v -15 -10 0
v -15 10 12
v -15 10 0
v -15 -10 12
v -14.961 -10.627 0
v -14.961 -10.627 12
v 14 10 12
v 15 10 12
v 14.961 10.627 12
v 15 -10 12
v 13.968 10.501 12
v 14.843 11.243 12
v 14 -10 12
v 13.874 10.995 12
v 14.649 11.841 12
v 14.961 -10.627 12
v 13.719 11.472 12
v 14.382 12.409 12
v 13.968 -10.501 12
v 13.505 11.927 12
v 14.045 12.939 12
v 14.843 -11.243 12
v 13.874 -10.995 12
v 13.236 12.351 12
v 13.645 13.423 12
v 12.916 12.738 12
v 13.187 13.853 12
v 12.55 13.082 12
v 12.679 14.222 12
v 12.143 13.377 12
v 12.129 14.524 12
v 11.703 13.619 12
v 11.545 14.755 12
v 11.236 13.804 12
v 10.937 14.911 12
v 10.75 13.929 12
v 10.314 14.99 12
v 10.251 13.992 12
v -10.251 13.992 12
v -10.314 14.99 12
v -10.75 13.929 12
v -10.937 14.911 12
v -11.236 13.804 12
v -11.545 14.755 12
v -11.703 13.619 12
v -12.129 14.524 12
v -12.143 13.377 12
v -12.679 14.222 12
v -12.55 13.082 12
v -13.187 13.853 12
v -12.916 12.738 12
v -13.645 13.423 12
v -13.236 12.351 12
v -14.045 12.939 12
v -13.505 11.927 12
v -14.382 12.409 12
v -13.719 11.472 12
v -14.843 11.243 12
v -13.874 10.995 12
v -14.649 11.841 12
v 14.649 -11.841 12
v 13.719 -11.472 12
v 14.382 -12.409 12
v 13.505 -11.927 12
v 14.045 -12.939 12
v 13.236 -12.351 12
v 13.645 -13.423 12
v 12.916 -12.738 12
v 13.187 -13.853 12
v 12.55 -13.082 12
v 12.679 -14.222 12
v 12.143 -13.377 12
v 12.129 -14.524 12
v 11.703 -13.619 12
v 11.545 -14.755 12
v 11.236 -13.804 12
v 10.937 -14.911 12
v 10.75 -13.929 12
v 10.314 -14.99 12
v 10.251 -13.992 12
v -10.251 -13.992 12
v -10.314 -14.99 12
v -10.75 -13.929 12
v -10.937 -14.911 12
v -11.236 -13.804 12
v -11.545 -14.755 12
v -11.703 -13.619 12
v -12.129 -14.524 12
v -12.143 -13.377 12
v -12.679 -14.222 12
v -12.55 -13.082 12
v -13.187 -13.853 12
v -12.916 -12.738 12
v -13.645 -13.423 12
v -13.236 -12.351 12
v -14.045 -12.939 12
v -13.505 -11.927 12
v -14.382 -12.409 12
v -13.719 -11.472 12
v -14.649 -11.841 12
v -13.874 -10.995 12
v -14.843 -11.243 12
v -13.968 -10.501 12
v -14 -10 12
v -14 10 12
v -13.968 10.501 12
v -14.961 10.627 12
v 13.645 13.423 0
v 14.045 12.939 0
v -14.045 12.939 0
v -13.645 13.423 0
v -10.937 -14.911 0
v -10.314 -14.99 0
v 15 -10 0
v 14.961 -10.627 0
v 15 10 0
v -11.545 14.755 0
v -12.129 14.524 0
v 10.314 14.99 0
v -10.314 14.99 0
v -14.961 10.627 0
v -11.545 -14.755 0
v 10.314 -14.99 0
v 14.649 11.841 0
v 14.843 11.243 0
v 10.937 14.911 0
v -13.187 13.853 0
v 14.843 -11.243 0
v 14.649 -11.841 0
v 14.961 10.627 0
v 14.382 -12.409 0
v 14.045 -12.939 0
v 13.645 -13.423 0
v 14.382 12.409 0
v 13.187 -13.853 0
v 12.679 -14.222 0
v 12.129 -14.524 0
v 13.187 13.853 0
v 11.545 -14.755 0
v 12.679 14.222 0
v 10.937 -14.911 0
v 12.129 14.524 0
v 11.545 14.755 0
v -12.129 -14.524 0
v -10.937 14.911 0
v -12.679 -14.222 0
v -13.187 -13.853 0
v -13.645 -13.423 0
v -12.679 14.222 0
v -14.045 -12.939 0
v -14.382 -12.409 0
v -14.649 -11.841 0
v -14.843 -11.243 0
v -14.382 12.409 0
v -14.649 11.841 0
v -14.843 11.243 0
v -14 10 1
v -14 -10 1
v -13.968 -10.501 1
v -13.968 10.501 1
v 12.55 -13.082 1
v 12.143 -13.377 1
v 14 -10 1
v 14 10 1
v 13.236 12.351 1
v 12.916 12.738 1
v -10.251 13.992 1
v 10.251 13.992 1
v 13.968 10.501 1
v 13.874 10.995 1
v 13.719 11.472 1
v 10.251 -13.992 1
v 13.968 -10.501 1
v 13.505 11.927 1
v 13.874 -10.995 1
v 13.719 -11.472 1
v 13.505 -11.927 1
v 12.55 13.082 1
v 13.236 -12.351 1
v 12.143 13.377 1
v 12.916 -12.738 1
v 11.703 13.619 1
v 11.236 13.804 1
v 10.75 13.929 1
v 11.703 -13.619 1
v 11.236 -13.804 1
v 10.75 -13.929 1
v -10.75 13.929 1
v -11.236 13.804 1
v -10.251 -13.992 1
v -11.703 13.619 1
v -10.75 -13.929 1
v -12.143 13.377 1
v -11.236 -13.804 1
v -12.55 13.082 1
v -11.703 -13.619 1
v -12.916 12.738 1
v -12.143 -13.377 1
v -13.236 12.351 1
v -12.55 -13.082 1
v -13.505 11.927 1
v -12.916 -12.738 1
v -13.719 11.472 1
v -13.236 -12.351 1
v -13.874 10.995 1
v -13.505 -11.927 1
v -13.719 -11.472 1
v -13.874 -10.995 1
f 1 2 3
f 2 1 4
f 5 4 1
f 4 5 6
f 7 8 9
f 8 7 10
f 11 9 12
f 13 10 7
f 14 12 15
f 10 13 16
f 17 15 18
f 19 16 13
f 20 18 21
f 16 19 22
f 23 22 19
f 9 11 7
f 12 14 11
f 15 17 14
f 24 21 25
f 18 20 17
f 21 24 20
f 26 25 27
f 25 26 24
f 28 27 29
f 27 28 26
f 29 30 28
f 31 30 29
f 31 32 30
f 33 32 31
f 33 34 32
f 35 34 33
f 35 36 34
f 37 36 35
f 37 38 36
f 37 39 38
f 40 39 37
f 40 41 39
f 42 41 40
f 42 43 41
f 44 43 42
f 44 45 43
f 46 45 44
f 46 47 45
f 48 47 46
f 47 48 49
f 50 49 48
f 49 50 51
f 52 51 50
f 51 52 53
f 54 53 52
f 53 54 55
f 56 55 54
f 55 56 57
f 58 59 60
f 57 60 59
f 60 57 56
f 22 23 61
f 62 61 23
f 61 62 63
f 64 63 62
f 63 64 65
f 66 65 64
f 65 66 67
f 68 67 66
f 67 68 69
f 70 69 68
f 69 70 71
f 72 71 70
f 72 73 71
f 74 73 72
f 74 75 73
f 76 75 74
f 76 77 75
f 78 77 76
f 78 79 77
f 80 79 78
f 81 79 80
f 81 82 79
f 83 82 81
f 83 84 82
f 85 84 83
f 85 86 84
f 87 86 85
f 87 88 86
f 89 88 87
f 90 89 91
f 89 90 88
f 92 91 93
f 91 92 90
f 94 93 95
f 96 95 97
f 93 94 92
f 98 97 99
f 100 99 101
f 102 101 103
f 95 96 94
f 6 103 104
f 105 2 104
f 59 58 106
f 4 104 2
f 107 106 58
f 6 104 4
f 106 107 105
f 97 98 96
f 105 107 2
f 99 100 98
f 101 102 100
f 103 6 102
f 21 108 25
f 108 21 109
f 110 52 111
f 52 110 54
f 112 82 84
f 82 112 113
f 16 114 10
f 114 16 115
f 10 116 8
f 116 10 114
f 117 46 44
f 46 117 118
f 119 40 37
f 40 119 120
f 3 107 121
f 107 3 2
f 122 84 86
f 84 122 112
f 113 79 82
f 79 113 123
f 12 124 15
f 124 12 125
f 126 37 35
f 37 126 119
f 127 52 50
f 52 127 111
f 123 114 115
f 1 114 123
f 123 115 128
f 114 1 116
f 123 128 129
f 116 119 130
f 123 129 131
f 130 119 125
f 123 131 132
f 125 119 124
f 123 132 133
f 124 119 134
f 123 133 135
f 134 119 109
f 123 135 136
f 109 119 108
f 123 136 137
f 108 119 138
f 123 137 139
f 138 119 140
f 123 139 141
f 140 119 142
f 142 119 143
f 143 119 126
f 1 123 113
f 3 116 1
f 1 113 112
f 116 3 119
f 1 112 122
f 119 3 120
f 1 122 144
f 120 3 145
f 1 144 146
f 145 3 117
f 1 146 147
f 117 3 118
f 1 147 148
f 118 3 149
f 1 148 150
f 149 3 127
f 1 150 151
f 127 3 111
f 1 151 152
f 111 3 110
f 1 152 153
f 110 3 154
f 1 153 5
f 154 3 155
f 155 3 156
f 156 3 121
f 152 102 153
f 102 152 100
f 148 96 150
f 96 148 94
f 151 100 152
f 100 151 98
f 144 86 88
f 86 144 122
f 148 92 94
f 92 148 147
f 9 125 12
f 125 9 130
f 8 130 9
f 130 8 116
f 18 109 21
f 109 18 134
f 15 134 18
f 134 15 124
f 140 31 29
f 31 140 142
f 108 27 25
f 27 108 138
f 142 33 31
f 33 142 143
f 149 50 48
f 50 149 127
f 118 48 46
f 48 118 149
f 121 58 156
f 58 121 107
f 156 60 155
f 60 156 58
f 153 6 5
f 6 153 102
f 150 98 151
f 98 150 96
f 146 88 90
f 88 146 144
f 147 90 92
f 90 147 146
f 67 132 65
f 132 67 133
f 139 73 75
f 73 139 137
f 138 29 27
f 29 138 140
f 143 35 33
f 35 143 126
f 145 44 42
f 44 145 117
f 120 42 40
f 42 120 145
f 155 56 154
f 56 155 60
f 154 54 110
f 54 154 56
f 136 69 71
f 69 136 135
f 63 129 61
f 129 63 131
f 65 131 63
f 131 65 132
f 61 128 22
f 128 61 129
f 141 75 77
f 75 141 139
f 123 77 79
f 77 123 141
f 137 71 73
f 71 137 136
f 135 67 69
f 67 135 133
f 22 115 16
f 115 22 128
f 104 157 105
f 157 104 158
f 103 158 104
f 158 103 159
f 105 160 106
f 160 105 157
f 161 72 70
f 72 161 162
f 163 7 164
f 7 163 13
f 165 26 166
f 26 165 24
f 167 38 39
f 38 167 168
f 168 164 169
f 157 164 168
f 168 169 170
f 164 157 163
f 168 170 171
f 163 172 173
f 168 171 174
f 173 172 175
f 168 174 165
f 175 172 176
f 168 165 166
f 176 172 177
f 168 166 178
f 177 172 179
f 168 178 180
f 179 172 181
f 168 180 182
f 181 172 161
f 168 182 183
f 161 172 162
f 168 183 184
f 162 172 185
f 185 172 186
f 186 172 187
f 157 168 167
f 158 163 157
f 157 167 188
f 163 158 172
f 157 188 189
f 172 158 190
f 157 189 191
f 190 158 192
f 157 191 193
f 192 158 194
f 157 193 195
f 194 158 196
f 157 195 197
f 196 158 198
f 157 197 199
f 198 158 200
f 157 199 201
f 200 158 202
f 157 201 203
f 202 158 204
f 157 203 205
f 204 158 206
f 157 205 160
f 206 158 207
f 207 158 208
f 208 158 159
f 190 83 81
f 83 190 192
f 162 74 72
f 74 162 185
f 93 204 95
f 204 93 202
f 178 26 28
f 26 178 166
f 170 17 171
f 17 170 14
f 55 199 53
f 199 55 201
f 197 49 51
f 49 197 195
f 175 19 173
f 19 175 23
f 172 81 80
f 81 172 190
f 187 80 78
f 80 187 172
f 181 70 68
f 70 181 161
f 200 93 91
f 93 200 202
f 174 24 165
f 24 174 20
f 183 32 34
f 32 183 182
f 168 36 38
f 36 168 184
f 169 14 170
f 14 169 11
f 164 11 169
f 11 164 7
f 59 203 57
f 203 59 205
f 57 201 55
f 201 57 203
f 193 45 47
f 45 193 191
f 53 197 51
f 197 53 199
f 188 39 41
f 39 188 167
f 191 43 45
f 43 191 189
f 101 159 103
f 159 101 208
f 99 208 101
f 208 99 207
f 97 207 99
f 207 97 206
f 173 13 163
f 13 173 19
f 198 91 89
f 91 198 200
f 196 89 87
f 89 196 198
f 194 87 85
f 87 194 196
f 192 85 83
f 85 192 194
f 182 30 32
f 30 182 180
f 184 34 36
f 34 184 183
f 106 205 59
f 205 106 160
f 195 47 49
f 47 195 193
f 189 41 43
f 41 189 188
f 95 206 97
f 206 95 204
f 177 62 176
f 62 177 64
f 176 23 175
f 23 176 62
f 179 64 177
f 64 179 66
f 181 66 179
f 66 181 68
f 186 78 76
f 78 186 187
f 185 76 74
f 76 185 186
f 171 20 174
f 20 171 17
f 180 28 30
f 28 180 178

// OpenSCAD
$fn = 50;


difference() {
	union() {
		hull() {
			translate(v = [-10.0000000000, 10.0000000000, 0]) {
				cylinder(h = 12, r = 5);
			}
			translate(v = [10.0000000000, 10.0000000000, 0]) {
				cylinder(h = 12, r = 5);
			}
			translate(v = [-10.0000000000, -10.0000000000, 0]) {
				cylinder(h = 12, r = 5);
			}
			translate(v = [10.0000000000, -10.0000000000, 0]) {
				cylinder(h = 12, r = 5);
			}
		}
	}
	union() {
		translate(v = [0, 0, 1]) {
			#hull() {
				translate(v = [-10.0000000000, 10.0000000000, 0]) {
					cylinder(h = 11, r = 4);
				}
				translate(v = [10.0000000000, 10.0000000000, 0]) {
					cylinder(h = 11, r = 4);
				}
				translate(v = [-10.0000000000, -10.0000000000, 0]) {
					cylinder(h = 11, r = 4);
				}
				translate(v = [10.0000000000, -10.0000000000, 0]) {
					cylinder(h = 11, r = 4);
				}
			}
		}
	}
}
